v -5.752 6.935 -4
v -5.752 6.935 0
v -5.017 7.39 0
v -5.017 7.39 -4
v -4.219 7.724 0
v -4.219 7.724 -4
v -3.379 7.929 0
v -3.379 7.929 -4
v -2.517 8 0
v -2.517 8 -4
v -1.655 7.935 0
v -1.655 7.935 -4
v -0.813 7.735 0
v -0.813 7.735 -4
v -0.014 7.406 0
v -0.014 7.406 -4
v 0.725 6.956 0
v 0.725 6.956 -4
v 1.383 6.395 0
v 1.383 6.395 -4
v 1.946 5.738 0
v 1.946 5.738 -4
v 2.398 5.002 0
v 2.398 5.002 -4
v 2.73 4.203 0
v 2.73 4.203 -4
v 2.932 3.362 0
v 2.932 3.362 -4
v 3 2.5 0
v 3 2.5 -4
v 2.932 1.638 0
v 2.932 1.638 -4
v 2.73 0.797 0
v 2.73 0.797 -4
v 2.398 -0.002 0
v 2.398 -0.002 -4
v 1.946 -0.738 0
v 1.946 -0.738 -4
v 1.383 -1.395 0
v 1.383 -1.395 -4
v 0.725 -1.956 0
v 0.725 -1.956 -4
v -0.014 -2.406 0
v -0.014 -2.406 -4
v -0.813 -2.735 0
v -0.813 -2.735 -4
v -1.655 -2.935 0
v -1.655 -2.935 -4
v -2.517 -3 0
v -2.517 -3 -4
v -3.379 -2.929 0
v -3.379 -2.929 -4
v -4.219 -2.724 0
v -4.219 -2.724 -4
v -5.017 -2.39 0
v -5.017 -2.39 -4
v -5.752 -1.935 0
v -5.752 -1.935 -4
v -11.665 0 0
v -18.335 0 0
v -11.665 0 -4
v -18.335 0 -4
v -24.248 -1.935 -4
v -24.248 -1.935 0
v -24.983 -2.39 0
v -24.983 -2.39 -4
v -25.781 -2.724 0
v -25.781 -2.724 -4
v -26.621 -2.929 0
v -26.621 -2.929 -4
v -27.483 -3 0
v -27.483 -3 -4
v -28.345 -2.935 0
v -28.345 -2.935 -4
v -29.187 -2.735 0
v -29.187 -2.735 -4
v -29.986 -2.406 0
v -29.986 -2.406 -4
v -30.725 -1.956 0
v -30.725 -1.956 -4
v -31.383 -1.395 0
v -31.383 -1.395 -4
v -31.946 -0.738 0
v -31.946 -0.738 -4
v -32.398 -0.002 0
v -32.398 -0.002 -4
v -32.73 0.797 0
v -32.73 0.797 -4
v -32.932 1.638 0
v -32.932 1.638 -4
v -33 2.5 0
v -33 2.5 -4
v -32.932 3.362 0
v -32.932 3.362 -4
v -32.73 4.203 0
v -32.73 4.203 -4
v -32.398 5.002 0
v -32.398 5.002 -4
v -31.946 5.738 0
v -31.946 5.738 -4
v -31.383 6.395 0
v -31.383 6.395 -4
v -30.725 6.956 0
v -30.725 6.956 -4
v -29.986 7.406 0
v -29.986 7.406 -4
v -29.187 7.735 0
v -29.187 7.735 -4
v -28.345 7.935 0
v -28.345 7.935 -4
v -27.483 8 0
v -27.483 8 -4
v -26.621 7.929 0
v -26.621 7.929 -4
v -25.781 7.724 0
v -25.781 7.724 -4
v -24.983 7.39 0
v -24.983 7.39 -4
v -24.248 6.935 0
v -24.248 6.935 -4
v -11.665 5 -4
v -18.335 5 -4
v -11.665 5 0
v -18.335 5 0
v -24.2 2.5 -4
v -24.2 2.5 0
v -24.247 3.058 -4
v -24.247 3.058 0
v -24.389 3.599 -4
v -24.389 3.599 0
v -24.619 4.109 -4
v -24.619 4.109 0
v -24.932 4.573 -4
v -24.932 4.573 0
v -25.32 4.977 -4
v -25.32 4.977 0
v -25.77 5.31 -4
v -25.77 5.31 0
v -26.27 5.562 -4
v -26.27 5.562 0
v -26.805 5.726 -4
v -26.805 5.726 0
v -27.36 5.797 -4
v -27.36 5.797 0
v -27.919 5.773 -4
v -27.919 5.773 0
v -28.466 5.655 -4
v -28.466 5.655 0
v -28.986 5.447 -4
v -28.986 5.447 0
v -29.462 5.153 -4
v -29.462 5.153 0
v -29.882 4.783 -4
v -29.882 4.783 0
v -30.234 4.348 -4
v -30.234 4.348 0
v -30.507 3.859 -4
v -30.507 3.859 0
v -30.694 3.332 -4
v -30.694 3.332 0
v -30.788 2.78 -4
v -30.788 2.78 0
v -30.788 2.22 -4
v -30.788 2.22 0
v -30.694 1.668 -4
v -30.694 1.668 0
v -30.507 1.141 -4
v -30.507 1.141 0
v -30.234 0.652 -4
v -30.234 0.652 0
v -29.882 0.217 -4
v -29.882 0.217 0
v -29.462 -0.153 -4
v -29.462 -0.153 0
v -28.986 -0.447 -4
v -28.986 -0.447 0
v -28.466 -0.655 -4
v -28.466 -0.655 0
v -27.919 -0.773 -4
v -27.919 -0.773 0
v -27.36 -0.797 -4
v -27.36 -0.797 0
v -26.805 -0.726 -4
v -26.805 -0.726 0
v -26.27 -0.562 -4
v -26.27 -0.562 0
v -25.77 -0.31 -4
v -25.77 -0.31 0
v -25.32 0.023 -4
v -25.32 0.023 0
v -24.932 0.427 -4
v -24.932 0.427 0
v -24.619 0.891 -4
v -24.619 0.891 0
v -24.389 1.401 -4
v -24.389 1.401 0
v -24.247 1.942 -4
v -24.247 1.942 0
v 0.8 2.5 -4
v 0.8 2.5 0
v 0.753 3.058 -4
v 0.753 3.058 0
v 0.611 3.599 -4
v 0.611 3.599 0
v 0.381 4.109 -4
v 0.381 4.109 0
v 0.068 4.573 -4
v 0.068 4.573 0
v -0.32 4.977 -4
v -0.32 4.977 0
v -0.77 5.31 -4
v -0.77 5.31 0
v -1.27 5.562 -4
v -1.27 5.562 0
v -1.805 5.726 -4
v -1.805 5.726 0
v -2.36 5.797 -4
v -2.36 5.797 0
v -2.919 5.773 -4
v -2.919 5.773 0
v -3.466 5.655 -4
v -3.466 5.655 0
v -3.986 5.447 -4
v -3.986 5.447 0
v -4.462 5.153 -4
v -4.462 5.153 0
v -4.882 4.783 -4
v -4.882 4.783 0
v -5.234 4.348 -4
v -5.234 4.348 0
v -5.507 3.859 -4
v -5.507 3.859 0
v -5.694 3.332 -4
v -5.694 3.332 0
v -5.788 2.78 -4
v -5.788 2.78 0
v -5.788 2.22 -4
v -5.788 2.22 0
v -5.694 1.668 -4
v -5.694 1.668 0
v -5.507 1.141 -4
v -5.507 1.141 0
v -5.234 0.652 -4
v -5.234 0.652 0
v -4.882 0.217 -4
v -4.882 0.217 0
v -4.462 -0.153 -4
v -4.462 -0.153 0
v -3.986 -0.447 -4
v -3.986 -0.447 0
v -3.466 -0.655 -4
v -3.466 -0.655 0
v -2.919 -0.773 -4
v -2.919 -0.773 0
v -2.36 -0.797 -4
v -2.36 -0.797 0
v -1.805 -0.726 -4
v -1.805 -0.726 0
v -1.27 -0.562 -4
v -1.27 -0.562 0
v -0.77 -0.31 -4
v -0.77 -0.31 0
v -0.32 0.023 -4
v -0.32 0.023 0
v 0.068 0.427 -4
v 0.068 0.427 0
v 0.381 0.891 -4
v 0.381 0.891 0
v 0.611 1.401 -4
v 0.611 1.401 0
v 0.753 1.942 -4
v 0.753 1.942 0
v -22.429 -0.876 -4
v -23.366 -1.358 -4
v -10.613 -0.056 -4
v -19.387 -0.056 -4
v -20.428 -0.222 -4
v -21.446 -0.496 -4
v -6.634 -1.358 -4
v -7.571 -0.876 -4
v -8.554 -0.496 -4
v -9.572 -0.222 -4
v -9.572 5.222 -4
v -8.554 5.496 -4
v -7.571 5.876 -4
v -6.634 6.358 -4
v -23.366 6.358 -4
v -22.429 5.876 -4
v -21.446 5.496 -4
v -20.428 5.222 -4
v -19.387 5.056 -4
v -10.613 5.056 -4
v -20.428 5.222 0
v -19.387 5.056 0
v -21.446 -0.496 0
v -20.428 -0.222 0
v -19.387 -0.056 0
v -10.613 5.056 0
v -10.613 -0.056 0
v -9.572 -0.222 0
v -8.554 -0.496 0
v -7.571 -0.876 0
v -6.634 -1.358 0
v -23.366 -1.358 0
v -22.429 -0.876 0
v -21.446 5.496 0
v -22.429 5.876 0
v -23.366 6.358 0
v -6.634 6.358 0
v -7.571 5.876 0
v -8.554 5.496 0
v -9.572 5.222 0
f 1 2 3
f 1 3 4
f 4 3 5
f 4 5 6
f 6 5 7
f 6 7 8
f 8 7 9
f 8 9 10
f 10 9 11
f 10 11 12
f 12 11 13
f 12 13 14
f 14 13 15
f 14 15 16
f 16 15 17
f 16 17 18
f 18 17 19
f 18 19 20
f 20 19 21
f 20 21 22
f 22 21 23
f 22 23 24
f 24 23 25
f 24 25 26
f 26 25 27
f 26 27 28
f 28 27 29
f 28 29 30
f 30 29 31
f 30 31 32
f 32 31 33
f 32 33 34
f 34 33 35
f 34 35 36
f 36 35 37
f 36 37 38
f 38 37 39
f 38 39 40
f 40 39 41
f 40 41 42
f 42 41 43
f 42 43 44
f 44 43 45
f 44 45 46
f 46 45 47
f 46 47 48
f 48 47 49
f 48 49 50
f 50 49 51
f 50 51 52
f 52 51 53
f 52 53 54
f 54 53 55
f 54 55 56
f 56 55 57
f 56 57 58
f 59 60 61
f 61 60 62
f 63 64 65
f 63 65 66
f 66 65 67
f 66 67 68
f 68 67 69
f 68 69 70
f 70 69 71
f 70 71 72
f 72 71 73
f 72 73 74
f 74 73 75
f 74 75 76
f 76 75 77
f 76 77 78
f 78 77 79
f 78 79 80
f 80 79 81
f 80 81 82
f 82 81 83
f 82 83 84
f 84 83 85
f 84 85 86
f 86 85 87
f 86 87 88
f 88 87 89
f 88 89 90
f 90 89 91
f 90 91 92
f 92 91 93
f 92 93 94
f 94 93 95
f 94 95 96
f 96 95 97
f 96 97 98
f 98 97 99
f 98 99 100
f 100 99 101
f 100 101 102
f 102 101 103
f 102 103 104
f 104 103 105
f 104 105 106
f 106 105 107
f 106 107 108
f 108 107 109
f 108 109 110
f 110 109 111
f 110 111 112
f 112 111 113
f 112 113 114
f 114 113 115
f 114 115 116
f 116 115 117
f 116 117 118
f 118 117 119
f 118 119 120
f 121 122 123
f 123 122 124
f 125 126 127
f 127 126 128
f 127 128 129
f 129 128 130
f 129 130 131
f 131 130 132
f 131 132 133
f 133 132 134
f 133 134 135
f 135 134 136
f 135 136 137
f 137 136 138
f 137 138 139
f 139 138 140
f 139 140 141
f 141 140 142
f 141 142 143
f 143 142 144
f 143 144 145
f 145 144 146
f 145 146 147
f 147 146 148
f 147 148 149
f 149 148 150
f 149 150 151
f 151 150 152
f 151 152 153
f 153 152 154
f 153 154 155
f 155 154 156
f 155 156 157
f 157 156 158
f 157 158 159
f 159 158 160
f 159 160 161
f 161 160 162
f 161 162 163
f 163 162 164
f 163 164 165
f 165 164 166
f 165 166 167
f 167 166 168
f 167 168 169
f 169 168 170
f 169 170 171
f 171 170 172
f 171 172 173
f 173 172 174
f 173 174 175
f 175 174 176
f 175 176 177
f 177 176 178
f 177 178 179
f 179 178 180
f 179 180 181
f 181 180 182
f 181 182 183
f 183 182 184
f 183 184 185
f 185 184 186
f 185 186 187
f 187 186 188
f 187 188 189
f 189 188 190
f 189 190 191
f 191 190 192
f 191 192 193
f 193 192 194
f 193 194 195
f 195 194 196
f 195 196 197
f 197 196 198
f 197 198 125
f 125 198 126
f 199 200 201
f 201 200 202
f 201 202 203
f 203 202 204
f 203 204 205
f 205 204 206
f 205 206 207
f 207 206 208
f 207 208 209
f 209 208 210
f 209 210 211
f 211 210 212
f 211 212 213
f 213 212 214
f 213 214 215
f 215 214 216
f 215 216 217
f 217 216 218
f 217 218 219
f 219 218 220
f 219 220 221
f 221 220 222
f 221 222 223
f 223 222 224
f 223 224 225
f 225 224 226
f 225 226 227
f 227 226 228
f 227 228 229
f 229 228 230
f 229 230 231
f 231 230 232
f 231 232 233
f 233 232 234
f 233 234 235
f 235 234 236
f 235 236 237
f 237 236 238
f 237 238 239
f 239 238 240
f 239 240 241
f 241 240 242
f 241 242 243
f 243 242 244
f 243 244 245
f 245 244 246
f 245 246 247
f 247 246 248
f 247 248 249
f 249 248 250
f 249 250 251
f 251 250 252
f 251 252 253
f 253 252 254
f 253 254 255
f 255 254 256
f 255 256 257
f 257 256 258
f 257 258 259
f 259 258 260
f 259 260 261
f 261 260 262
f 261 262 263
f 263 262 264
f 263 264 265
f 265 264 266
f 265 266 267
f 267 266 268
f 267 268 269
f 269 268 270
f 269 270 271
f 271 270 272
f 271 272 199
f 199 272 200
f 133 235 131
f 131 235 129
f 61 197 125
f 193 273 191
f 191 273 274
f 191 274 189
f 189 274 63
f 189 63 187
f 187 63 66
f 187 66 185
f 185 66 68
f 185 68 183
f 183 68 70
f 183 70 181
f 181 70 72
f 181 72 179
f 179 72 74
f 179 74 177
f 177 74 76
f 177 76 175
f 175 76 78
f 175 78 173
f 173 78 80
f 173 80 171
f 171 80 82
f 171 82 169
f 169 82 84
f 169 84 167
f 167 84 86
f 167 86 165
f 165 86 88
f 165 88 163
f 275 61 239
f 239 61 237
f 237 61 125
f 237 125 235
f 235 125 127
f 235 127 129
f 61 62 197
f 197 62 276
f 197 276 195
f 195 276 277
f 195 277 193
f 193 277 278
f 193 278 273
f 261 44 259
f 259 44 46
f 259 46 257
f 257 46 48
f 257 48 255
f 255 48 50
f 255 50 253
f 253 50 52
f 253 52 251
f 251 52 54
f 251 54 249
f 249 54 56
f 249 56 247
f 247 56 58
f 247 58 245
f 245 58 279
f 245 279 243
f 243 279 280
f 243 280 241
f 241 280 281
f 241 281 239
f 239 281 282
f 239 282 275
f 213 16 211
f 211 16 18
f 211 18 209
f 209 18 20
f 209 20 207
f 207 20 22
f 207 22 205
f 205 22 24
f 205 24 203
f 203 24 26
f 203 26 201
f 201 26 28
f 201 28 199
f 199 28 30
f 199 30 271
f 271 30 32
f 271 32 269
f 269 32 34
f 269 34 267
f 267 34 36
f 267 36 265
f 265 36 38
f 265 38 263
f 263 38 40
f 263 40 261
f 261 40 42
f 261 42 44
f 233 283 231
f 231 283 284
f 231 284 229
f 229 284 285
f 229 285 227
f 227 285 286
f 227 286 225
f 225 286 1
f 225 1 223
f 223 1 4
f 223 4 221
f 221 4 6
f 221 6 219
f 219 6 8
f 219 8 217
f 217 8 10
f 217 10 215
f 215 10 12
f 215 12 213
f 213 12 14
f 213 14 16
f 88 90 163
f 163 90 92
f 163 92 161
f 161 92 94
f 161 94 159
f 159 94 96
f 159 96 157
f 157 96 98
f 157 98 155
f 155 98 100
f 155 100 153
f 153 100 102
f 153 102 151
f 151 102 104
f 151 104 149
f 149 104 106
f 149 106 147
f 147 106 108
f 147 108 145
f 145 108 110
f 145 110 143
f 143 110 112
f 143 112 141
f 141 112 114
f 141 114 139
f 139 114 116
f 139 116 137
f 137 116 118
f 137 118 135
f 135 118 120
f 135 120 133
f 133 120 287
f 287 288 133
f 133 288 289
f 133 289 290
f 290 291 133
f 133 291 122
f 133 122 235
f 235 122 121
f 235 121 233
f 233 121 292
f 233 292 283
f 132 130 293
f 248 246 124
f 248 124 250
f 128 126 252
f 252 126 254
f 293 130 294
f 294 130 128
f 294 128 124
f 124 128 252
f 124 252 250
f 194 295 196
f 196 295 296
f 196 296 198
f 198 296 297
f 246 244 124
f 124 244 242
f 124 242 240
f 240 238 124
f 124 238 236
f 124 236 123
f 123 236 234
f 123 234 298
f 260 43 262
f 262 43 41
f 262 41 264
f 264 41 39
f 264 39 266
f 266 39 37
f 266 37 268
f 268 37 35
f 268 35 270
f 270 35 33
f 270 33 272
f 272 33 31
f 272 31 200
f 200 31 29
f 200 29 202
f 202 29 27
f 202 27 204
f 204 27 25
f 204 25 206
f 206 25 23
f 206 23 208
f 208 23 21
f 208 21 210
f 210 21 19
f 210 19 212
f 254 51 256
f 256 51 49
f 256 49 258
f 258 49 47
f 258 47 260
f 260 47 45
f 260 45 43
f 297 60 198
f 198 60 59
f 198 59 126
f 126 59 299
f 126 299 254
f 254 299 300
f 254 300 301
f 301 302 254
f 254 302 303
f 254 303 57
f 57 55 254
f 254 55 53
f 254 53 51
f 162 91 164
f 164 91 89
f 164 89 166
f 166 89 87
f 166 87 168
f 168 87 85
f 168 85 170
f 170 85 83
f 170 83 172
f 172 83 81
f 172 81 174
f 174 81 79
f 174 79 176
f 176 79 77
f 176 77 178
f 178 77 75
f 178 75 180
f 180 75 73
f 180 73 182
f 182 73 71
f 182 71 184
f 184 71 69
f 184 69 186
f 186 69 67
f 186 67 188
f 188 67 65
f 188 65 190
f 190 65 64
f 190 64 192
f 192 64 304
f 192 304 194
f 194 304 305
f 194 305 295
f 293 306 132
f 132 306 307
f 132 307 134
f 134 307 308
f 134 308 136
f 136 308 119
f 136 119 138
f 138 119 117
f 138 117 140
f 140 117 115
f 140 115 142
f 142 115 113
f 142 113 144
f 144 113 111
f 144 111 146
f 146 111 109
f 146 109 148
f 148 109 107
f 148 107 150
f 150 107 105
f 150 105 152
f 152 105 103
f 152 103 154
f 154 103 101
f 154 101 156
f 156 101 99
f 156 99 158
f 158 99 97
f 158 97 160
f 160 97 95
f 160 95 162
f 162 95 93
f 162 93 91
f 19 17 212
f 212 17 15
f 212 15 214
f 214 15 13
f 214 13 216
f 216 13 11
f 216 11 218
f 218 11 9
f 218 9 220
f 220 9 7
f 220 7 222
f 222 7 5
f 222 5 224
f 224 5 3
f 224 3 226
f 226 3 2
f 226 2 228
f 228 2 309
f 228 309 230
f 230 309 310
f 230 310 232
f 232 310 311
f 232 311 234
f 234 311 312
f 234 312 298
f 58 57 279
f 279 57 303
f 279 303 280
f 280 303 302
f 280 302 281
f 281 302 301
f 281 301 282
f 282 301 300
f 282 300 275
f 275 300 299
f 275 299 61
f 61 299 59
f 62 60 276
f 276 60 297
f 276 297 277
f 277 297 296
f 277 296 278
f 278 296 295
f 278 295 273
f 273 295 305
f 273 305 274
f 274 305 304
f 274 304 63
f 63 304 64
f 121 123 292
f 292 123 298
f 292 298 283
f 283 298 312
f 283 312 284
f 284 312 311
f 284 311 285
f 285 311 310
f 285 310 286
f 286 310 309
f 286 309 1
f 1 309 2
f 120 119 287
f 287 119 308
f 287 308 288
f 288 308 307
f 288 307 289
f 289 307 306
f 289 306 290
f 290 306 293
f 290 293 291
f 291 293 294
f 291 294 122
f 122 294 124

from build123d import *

# Parameters (mm, degrees)
EXTRUDE_1_DEPTH = 4
FILLET_1_R      = 10


with BuildPart() as part:
    # ｽｹｯﾁ1 → ﾎﾞｽ - 押し出し1 (new body)
    with BuildSketch(Plane.XY):
        with BuildLine():
            Line((-0.345934077, 5), (0, 5))
            Line((0, 5), (0, 4.654065923))
            ThreePointArc((0, 4.654065923), (0.59354166, 3.648912529), (0.8, 2.5))
            ThreePointArc((0.8, 2.5), (0.59354166, 1.351087471), (0, 0.345934077))
            Line((0, 0.345934077), (0, 0))
            Line((0, 0), (-0.345934077, 0))
            ThreePointArc((-0.345934077, 0), (-2.5, -0.8), (-4.654065923, 0))
            Line((-4.654065923, 0), (-7.398979486, 0))
            ThreePointArc((-7.398979486, 0), (-1.214384811, -2.847634392), (3, 2.5))
            ThreePointArc((3, 2.5), (-1.214384811, 7.847634392), (-7.398979486, 5))
            Line((-7.398979486, 5), (-4.654065923, 5))
            ThreePointArc((-4.654065923, 5), (-2.5, 5.8), (-0.345934077, 5))
        make_face()
        with BuildLine():
            ThreePointArc((-4.654065923, 0), (-5.8, 2.5), (-4.654065923, 5))
            Line((-4.654065923, 5), (-7.398979486, 5))
            ThreePointArc((-7.398979486, 5), (-8, 2.5), (-7.398979486, 0))
            Line((-7.398979486, 0), (-4.654065923, 0))
        make_face()
        with BuildLine():
            Line((0, 0), (0, 0.345934077))
            ThreePointArc((0, 0.345934077), (-0.166547622, 0.166547622), (-0.345934077, 0))
            Line((-0.345934077, 0), (0, 0))
        make_face()
        with BuildLine():
            Line((0, 4.654065923), (0, 5))
            Line((0, 5), (-0.345934077, 5))
            ThreePointArc((-0.345934077, 5), (-0.166547622, 4.833452378), (0, 4.654065923))
        make_face()
        with BuildLine():
            ThreePointArc((-7.398979486, 0), (-8, 2.5), (-7.398979486, 5))
            Line((-7.398979486, 5), (-22.601020514, 5))
            ThreePointArc((-22.601020514, 5), (-22.152365608, 3.785615189), (-22, 2.5))
            ThreePointArc((-22, 2.5), (-22.152365608, 1.214384811), (-22.601020514, 0))
            Line((-22.601020514, 0), (-7.398979486, 0))
        make_face()
        with BuildLine():
            ThreePointArc((-22, 2.5), (-22.152365608, 3.785615189), (-22.601020514, 5))
            Line((-22.601020514, 5), (-25.345934077, 5))
            ThreePointArc((-25.345934077, 5), (-24.500131874, 3.875060445), (-24.2, 2.5))
            ThreePointArc((-24.2, 2.5), (-24.500131874, 1.124939555), (-25.345934077, 0))
            Line((-25.345934077, 0), (-22.601020514, 0))
            ThreePointArc((-22.601020514, 0), (-22.152365608, 1.214384811), (-22, 2.5))
        make_face()
        with BuildLine():
            Line((-25.345934077, 5), (-22.601020514, 5))
            ThreePointArc((-22.601020514, 5), (-33, 2.5), (-22.601020514, 0))
            Line((-22.601020514, 0), (-25.345934077, 0))
            ThreePointArc((-25.345934077, 0), (-27.5, -0.8), (-29.654065923, 0))
            Line((-29.654065923, 0), (-30, 0))
            Line((-30, 0), (-30, 0.345934077))
            ThreePointArc((-30, 0.345934077), (-30.8, 2.5), (-30, 4.654065923))
            Line((-30, 4.654065923), (-30, 5))
            Line((-30, 5), (-29.654065923, 5))
            ThreePointArc((-29.654065923, 5), (-27.5, 5.8), (-25.345934077, 5))
        make_face()
        with BuildLine():
            ThreePointArc((-30, 4.654065923), (-29.833452378, 4.833452378), (-29.654065923, 5))
            Line((-29.654065923, 5), (-30, 5))
            Line((-30, 5), (-30, 4.654065923))
        make_face()
        with BuildLine():
            Line((-30, 0), (-29.654065923, 0))
            ThreePointArc((-29.654065923, 0), (-29.833452378, 0.166547622), (-30, 0.345934077))
            Line((-30, 0.345934077), (-30, 0))
        make_face()
    extrude(amount=-EXTRUDE_1_DEPTH)

    # ﾌｨﾚｯﾄ1
    fillet_1_edges = [part.edges().sort_by_distance(p)[0] for p in [
        (-7.398979486, 0, -2),
        (-22.601020514, 0, -2),
        (-22.601020514, 5, -2),
        (-7.398979486, 5, -2),
    ]]
    fillet(fillet_1_edges, radius=FILLET_1_R)


solid = part.part
